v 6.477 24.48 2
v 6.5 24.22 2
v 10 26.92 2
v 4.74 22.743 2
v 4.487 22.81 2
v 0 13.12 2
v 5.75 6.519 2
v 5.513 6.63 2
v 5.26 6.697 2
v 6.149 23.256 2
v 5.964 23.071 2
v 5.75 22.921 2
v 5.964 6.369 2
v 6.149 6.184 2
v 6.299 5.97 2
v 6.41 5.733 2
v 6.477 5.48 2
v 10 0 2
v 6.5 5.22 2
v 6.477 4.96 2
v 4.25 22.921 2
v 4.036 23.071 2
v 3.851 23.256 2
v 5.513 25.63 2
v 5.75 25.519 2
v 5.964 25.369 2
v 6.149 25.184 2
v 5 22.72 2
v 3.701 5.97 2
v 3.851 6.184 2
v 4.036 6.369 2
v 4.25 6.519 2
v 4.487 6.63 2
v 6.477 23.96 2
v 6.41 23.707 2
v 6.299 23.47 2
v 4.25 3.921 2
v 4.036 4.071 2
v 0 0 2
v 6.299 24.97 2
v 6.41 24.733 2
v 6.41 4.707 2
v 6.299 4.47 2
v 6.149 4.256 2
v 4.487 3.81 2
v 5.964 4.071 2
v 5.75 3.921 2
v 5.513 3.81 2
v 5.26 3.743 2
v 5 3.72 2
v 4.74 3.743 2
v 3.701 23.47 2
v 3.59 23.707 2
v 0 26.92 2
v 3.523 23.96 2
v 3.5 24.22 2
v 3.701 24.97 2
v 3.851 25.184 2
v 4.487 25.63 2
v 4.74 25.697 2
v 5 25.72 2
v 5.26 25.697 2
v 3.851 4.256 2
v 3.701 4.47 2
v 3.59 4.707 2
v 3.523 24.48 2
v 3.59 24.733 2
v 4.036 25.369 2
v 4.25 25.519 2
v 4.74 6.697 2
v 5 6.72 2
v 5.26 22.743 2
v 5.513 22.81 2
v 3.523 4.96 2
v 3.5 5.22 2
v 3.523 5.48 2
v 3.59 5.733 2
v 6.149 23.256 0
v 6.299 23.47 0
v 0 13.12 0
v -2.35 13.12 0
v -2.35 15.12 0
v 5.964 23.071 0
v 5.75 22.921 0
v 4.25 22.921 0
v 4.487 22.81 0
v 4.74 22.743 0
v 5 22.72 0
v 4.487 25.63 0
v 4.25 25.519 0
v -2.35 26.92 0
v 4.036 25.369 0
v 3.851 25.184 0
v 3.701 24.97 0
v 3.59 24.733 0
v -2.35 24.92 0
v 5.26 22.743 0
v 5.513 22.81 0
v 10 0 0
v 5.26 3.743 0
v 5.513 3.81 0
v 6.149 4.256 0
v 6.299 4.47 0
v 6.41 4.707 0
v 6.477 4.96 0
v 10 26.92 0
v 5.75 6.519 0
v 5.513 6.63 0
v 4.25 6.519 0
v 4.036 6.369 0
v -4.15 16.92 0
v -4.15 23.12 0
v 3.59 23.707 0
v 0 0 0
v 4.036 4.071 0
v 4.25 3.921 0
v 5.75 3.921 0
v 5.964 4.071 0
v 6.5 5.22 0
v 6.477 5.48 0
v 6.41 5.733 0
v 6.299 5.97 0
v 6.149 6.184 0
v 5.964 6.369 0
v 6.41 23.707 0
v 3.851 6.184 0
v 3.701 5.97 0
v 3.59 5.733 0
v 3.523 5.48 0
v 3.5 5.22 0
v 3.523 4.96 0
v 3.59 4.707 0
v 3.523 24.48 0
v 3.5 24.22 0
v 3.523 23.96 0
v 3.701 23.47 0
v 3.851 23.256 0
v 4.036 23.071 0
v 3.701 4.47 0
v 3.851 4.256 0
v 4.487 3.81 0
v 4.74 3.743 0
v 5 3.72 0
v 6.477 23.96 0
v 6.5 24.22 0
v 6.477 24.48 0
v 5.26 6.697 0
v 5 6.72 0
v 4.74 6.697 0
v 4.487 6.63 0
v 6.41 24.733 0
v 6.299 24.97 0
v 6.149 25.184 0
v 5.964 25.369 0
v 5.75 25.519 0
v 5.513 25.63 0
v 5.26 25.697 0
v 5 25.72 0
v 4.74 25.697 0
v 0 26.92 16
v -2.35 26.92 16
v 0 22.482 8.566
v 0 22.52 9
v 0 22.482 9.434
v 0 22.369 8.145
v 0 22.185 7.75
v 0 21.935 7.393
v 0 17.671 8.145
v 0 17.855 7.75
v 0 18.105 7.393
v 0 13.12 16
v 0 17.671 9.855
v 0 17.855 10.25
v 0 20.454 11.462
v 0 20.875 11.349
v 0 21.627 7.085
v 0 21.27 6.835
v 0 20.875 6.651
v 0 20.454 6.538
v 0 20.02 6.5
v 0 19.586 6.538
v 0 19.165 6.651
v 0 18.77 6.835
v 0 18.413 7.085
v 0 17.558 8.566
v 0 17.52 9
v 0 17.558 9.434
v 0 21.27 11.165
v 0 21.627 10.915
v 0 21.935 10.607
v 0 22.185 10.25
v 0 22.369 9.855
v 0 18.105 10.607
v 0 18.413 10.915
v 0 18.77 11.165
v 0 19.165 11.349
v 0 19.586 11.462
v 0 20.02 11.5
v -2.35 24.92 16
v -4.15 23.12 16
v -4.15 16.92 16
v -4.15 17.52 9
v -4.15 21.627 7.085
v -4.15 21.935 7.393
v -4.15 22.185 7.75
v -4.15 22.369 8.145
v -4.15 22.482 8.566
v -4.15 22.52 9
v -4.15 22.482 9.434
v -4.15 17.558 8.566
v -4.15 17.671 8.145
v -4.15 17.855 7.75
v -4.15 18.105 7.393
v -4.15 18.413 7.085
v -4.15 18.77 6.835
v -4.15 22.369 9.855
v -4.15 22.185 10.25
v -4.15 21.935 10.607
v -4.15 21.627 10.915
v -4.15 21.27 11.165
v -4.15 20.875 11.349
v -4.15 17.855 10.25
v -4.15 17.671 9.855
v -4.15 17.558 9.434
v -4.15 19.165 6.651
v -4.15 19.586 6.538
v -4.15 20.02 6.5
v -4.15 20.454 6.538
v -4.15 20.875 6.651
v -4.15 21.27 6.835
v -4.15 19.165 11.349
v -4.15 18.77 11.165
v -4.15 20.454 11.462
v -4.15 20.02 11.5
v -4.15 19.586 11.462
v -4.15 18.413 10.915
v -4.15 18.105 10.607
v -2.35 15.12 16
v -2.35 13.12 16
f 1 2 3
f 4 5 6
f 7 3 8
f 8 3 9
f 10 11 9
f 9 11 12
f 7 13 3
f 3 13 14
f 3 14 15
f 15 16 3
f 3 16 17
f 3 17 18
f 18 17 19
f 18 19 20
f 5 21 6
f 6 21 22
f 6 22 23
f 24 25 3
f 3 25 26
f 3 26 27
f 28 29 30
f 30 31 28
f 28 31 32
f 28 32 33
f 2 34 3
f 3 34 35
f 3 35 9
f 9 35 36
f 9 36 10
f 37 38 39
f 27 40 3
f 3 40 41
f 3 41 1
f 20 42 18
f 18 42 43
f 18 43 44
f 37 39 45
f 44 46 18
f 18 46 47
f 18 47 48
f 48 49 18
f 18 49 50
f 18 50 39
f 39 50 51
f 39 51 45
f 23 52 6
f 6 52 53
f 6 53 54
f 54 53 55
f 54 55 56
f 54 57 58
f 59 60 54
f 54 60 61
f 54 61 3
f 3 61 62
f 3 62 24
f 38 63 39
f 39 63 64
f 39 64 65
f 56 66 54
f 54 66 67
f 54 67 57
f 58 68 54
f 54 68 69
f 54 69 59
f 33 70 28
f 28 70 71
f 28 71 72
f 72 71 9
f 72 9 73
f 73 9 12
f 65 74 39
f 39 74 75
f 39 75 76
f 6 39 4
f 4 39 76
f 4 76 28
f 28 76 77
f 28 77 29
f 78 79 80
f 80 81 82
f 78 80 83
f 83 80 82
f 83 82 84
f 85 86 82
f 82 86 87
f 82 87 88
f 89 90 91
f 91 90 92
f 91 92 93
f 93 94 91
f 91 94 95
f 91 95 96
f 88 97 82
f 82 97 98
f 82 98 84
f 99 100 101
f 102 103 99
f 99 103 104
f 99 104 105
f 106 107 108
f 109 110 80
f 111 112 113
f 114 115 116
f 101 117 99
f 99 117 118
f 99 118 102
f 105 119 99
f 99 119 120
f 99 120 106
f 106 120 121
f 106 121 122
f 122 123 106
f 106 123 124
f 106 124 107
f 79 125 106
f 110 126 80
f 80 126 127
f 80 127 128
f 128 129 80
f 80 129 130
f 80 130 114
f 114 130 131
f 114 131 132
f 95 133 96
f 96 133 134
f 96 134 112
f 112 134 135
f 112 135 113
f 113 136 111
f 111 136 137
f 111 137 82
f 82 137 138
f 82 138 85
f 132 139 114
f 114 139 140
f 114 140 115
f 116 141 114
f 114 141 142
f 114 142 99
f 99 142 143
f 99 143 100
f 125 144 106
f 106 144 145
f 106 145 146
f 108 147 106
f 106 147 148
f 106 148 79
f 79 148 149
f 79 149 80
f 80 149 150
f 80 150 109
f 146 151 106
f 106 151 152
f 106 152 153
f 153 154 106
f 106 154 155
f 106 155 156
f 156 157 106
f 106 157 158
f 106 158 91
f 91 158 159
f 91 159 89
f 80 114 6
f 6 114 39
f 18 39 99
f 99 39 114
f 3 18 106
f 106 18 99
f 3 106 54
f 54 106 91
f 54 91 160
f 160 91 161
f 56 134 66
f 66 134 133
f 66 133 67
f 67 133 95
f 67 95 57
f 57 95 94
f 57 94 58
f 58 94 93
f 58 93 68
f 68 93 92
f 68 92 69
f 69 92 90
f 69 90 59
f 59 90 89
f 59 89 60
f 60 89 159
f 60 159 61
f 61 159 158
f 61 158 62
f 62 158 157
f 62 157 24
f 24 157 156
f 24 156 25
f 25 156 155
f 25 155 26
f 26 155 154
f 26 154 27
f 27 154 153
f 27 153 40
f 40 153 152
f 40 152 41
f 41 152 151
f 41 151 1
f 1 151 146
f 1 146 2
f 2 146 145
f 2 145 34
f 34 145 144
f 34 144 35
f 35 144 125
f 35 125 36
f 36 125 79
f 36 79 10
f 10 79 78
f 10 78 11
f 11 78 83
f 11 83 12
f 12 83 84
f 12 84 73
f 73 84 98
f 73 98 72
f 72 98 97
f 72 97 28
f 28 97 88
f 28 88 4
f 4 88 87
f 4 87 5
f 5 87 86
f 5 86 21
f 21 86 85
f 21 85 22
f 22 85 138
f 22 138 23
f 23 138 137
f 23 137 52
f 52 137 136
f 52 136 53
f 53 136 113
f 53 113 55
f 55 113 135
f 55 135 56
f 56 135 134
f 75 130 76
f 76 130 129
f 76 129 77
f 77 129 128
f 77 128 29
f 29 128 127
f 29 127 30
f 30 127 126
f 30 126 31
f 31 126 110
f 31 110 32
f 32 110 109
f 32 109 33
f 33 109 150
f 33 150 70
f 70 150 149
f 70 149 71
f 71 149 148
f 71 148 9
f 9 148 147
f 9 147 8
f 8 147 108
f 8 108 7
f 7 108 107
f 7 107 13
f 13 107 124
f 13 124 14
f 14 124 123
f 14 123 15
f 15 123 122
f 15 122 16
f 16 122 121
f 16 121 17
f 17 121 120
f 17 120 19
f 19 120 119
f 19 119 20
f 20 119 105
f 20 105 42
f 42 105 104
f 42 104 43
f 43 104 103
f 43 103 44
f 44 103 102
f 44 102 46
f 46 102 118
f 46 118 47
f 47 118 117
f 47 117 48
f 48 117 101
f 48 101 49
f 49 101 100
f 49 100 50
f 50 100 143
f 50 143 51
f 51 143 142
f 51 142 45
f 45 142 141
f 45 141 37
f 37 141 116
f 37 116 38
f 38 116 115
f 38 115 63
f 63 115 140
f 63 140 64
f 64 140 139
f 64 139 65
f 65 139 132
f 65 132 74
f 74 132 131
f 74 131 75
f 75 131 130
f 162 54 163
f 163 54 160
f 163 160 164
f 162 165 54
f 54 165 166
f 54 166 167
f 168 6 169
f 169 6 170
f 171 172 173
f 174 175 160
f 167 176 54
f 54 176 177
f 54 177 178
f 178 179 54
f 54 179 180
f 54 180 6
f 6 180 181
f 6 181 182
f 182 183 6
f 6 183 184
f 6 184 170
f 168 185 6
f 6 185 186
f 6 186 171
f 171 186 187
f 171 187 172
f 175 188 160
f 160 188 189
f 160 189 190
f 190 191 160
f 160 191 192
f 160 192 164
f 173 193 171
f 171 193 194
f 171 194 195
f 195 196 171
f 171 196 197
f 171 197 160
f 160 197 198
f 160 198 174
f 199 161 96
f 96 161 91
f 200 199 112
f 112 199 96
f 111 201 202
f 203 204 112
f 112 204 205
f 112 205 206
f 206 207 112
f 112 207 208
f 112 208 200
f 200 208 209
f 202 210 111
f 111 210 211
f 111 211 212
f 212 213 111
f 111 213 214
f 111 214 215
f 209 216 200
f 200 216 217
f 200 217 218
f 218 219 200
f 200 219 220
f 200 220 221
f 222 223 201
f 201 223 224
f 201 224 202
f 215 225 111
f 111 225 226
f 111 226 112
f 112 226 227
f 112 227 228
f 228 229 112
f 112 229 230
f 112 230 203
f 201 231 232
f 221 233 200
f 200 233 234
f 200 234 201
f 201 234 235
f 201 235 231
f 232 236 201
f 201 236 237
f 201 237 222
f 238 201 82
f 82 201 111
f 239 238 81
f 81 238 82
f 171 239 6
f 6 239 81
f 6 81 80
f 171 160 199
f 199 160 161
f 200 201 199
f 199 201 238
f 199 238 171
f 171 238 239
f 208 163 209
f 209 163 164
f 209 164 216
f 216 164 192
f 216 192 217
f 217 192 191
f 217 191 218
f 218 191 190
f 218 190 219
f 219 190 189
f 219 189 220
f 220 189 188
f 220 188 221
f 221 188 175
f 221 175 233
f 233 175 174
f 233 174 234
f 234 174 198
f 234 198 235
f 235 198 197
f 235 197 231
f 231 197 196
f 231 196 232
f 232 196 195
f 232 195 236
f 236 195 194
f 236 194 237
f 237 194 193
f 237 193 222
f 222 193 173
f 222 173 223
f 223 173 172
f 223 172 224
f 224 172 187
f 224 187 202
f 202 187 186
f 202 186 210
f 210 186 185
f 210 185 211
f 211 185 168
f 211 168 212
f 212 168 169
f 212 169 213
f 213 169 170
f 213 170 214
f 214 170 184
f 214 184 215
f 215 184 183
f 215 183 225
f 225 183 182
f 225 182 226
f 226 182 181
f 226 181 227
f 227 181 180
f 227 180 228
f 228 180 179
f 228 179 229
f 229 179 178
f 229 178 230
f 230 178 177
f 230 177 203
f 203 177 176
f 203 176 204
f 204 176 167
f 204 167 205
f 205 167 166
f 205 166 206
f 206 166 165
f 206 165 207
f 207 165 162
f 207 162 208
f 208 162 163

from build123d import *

# Parameters (mm, degrees)
SKETCH1_W           = 10
SKETCH1_H           = 26.92
SKETCH1_R           = 1.5
BOSS_EXTRUDE1_DEPTH = 2
BOSS_EXTRUDE2_DEPTH = 16
SKETCH5_R           = 2.5
CUT_EXTRUDE1_DEPTH  = 16


with BuildPart() as part:
    # Sketch1 → Boss-Extrude1 (new body)
    with BuildSketch(Plane.XY):
        with Locations((5, 13.46)):
            Rectangle(SKETCH1_W, SKETCH1_H)
        with Locations((5, 24.22)):
            Circle(SKETCH1_R, mode=Mode.SUBTRACT)
        with Locations((5, 5.22)):
            Circle(SKETCH1_R, mode=Mode.SUBTRACT)
    extrude(amount=BOSS_EXTRUDE1_DEPTH)

    # Sketch2 → Boss-Extrude2 (add)
    with BuildSketch(Plane(origin=(0, 0, 0), x_dir=(-1, 0, 0), z_dir=(0, 0, -1))):
        Polygon((2.35, 24.92), (4.15, 23.12), (4.15, 16.92), (2.35, 15.12), (2.35, 13.12), (0, 13.12), (0, 15.12), (0, 24.92), (0, 26.92), (2.35, 26.92), align=None)
    extrude(amount=-BOSS_EXTRUDE2_DEPTH)

    # Sketch5 → Cut-Extrude1 (cut)
    with BuildSketch(Plane(origin=(0, 0, 0), x_dir=(0, 0, -1), z_dir=(1, 0, 0))):
        with Locations(Location((-9, 20.02, 0), (0, 0, 90))):
            Circle(SKETCH5_R)
    extrude(amount=-CUT_EXTRUDE1_DEPTH, mode=Mode.SUBTRACT)


solid = part.part
